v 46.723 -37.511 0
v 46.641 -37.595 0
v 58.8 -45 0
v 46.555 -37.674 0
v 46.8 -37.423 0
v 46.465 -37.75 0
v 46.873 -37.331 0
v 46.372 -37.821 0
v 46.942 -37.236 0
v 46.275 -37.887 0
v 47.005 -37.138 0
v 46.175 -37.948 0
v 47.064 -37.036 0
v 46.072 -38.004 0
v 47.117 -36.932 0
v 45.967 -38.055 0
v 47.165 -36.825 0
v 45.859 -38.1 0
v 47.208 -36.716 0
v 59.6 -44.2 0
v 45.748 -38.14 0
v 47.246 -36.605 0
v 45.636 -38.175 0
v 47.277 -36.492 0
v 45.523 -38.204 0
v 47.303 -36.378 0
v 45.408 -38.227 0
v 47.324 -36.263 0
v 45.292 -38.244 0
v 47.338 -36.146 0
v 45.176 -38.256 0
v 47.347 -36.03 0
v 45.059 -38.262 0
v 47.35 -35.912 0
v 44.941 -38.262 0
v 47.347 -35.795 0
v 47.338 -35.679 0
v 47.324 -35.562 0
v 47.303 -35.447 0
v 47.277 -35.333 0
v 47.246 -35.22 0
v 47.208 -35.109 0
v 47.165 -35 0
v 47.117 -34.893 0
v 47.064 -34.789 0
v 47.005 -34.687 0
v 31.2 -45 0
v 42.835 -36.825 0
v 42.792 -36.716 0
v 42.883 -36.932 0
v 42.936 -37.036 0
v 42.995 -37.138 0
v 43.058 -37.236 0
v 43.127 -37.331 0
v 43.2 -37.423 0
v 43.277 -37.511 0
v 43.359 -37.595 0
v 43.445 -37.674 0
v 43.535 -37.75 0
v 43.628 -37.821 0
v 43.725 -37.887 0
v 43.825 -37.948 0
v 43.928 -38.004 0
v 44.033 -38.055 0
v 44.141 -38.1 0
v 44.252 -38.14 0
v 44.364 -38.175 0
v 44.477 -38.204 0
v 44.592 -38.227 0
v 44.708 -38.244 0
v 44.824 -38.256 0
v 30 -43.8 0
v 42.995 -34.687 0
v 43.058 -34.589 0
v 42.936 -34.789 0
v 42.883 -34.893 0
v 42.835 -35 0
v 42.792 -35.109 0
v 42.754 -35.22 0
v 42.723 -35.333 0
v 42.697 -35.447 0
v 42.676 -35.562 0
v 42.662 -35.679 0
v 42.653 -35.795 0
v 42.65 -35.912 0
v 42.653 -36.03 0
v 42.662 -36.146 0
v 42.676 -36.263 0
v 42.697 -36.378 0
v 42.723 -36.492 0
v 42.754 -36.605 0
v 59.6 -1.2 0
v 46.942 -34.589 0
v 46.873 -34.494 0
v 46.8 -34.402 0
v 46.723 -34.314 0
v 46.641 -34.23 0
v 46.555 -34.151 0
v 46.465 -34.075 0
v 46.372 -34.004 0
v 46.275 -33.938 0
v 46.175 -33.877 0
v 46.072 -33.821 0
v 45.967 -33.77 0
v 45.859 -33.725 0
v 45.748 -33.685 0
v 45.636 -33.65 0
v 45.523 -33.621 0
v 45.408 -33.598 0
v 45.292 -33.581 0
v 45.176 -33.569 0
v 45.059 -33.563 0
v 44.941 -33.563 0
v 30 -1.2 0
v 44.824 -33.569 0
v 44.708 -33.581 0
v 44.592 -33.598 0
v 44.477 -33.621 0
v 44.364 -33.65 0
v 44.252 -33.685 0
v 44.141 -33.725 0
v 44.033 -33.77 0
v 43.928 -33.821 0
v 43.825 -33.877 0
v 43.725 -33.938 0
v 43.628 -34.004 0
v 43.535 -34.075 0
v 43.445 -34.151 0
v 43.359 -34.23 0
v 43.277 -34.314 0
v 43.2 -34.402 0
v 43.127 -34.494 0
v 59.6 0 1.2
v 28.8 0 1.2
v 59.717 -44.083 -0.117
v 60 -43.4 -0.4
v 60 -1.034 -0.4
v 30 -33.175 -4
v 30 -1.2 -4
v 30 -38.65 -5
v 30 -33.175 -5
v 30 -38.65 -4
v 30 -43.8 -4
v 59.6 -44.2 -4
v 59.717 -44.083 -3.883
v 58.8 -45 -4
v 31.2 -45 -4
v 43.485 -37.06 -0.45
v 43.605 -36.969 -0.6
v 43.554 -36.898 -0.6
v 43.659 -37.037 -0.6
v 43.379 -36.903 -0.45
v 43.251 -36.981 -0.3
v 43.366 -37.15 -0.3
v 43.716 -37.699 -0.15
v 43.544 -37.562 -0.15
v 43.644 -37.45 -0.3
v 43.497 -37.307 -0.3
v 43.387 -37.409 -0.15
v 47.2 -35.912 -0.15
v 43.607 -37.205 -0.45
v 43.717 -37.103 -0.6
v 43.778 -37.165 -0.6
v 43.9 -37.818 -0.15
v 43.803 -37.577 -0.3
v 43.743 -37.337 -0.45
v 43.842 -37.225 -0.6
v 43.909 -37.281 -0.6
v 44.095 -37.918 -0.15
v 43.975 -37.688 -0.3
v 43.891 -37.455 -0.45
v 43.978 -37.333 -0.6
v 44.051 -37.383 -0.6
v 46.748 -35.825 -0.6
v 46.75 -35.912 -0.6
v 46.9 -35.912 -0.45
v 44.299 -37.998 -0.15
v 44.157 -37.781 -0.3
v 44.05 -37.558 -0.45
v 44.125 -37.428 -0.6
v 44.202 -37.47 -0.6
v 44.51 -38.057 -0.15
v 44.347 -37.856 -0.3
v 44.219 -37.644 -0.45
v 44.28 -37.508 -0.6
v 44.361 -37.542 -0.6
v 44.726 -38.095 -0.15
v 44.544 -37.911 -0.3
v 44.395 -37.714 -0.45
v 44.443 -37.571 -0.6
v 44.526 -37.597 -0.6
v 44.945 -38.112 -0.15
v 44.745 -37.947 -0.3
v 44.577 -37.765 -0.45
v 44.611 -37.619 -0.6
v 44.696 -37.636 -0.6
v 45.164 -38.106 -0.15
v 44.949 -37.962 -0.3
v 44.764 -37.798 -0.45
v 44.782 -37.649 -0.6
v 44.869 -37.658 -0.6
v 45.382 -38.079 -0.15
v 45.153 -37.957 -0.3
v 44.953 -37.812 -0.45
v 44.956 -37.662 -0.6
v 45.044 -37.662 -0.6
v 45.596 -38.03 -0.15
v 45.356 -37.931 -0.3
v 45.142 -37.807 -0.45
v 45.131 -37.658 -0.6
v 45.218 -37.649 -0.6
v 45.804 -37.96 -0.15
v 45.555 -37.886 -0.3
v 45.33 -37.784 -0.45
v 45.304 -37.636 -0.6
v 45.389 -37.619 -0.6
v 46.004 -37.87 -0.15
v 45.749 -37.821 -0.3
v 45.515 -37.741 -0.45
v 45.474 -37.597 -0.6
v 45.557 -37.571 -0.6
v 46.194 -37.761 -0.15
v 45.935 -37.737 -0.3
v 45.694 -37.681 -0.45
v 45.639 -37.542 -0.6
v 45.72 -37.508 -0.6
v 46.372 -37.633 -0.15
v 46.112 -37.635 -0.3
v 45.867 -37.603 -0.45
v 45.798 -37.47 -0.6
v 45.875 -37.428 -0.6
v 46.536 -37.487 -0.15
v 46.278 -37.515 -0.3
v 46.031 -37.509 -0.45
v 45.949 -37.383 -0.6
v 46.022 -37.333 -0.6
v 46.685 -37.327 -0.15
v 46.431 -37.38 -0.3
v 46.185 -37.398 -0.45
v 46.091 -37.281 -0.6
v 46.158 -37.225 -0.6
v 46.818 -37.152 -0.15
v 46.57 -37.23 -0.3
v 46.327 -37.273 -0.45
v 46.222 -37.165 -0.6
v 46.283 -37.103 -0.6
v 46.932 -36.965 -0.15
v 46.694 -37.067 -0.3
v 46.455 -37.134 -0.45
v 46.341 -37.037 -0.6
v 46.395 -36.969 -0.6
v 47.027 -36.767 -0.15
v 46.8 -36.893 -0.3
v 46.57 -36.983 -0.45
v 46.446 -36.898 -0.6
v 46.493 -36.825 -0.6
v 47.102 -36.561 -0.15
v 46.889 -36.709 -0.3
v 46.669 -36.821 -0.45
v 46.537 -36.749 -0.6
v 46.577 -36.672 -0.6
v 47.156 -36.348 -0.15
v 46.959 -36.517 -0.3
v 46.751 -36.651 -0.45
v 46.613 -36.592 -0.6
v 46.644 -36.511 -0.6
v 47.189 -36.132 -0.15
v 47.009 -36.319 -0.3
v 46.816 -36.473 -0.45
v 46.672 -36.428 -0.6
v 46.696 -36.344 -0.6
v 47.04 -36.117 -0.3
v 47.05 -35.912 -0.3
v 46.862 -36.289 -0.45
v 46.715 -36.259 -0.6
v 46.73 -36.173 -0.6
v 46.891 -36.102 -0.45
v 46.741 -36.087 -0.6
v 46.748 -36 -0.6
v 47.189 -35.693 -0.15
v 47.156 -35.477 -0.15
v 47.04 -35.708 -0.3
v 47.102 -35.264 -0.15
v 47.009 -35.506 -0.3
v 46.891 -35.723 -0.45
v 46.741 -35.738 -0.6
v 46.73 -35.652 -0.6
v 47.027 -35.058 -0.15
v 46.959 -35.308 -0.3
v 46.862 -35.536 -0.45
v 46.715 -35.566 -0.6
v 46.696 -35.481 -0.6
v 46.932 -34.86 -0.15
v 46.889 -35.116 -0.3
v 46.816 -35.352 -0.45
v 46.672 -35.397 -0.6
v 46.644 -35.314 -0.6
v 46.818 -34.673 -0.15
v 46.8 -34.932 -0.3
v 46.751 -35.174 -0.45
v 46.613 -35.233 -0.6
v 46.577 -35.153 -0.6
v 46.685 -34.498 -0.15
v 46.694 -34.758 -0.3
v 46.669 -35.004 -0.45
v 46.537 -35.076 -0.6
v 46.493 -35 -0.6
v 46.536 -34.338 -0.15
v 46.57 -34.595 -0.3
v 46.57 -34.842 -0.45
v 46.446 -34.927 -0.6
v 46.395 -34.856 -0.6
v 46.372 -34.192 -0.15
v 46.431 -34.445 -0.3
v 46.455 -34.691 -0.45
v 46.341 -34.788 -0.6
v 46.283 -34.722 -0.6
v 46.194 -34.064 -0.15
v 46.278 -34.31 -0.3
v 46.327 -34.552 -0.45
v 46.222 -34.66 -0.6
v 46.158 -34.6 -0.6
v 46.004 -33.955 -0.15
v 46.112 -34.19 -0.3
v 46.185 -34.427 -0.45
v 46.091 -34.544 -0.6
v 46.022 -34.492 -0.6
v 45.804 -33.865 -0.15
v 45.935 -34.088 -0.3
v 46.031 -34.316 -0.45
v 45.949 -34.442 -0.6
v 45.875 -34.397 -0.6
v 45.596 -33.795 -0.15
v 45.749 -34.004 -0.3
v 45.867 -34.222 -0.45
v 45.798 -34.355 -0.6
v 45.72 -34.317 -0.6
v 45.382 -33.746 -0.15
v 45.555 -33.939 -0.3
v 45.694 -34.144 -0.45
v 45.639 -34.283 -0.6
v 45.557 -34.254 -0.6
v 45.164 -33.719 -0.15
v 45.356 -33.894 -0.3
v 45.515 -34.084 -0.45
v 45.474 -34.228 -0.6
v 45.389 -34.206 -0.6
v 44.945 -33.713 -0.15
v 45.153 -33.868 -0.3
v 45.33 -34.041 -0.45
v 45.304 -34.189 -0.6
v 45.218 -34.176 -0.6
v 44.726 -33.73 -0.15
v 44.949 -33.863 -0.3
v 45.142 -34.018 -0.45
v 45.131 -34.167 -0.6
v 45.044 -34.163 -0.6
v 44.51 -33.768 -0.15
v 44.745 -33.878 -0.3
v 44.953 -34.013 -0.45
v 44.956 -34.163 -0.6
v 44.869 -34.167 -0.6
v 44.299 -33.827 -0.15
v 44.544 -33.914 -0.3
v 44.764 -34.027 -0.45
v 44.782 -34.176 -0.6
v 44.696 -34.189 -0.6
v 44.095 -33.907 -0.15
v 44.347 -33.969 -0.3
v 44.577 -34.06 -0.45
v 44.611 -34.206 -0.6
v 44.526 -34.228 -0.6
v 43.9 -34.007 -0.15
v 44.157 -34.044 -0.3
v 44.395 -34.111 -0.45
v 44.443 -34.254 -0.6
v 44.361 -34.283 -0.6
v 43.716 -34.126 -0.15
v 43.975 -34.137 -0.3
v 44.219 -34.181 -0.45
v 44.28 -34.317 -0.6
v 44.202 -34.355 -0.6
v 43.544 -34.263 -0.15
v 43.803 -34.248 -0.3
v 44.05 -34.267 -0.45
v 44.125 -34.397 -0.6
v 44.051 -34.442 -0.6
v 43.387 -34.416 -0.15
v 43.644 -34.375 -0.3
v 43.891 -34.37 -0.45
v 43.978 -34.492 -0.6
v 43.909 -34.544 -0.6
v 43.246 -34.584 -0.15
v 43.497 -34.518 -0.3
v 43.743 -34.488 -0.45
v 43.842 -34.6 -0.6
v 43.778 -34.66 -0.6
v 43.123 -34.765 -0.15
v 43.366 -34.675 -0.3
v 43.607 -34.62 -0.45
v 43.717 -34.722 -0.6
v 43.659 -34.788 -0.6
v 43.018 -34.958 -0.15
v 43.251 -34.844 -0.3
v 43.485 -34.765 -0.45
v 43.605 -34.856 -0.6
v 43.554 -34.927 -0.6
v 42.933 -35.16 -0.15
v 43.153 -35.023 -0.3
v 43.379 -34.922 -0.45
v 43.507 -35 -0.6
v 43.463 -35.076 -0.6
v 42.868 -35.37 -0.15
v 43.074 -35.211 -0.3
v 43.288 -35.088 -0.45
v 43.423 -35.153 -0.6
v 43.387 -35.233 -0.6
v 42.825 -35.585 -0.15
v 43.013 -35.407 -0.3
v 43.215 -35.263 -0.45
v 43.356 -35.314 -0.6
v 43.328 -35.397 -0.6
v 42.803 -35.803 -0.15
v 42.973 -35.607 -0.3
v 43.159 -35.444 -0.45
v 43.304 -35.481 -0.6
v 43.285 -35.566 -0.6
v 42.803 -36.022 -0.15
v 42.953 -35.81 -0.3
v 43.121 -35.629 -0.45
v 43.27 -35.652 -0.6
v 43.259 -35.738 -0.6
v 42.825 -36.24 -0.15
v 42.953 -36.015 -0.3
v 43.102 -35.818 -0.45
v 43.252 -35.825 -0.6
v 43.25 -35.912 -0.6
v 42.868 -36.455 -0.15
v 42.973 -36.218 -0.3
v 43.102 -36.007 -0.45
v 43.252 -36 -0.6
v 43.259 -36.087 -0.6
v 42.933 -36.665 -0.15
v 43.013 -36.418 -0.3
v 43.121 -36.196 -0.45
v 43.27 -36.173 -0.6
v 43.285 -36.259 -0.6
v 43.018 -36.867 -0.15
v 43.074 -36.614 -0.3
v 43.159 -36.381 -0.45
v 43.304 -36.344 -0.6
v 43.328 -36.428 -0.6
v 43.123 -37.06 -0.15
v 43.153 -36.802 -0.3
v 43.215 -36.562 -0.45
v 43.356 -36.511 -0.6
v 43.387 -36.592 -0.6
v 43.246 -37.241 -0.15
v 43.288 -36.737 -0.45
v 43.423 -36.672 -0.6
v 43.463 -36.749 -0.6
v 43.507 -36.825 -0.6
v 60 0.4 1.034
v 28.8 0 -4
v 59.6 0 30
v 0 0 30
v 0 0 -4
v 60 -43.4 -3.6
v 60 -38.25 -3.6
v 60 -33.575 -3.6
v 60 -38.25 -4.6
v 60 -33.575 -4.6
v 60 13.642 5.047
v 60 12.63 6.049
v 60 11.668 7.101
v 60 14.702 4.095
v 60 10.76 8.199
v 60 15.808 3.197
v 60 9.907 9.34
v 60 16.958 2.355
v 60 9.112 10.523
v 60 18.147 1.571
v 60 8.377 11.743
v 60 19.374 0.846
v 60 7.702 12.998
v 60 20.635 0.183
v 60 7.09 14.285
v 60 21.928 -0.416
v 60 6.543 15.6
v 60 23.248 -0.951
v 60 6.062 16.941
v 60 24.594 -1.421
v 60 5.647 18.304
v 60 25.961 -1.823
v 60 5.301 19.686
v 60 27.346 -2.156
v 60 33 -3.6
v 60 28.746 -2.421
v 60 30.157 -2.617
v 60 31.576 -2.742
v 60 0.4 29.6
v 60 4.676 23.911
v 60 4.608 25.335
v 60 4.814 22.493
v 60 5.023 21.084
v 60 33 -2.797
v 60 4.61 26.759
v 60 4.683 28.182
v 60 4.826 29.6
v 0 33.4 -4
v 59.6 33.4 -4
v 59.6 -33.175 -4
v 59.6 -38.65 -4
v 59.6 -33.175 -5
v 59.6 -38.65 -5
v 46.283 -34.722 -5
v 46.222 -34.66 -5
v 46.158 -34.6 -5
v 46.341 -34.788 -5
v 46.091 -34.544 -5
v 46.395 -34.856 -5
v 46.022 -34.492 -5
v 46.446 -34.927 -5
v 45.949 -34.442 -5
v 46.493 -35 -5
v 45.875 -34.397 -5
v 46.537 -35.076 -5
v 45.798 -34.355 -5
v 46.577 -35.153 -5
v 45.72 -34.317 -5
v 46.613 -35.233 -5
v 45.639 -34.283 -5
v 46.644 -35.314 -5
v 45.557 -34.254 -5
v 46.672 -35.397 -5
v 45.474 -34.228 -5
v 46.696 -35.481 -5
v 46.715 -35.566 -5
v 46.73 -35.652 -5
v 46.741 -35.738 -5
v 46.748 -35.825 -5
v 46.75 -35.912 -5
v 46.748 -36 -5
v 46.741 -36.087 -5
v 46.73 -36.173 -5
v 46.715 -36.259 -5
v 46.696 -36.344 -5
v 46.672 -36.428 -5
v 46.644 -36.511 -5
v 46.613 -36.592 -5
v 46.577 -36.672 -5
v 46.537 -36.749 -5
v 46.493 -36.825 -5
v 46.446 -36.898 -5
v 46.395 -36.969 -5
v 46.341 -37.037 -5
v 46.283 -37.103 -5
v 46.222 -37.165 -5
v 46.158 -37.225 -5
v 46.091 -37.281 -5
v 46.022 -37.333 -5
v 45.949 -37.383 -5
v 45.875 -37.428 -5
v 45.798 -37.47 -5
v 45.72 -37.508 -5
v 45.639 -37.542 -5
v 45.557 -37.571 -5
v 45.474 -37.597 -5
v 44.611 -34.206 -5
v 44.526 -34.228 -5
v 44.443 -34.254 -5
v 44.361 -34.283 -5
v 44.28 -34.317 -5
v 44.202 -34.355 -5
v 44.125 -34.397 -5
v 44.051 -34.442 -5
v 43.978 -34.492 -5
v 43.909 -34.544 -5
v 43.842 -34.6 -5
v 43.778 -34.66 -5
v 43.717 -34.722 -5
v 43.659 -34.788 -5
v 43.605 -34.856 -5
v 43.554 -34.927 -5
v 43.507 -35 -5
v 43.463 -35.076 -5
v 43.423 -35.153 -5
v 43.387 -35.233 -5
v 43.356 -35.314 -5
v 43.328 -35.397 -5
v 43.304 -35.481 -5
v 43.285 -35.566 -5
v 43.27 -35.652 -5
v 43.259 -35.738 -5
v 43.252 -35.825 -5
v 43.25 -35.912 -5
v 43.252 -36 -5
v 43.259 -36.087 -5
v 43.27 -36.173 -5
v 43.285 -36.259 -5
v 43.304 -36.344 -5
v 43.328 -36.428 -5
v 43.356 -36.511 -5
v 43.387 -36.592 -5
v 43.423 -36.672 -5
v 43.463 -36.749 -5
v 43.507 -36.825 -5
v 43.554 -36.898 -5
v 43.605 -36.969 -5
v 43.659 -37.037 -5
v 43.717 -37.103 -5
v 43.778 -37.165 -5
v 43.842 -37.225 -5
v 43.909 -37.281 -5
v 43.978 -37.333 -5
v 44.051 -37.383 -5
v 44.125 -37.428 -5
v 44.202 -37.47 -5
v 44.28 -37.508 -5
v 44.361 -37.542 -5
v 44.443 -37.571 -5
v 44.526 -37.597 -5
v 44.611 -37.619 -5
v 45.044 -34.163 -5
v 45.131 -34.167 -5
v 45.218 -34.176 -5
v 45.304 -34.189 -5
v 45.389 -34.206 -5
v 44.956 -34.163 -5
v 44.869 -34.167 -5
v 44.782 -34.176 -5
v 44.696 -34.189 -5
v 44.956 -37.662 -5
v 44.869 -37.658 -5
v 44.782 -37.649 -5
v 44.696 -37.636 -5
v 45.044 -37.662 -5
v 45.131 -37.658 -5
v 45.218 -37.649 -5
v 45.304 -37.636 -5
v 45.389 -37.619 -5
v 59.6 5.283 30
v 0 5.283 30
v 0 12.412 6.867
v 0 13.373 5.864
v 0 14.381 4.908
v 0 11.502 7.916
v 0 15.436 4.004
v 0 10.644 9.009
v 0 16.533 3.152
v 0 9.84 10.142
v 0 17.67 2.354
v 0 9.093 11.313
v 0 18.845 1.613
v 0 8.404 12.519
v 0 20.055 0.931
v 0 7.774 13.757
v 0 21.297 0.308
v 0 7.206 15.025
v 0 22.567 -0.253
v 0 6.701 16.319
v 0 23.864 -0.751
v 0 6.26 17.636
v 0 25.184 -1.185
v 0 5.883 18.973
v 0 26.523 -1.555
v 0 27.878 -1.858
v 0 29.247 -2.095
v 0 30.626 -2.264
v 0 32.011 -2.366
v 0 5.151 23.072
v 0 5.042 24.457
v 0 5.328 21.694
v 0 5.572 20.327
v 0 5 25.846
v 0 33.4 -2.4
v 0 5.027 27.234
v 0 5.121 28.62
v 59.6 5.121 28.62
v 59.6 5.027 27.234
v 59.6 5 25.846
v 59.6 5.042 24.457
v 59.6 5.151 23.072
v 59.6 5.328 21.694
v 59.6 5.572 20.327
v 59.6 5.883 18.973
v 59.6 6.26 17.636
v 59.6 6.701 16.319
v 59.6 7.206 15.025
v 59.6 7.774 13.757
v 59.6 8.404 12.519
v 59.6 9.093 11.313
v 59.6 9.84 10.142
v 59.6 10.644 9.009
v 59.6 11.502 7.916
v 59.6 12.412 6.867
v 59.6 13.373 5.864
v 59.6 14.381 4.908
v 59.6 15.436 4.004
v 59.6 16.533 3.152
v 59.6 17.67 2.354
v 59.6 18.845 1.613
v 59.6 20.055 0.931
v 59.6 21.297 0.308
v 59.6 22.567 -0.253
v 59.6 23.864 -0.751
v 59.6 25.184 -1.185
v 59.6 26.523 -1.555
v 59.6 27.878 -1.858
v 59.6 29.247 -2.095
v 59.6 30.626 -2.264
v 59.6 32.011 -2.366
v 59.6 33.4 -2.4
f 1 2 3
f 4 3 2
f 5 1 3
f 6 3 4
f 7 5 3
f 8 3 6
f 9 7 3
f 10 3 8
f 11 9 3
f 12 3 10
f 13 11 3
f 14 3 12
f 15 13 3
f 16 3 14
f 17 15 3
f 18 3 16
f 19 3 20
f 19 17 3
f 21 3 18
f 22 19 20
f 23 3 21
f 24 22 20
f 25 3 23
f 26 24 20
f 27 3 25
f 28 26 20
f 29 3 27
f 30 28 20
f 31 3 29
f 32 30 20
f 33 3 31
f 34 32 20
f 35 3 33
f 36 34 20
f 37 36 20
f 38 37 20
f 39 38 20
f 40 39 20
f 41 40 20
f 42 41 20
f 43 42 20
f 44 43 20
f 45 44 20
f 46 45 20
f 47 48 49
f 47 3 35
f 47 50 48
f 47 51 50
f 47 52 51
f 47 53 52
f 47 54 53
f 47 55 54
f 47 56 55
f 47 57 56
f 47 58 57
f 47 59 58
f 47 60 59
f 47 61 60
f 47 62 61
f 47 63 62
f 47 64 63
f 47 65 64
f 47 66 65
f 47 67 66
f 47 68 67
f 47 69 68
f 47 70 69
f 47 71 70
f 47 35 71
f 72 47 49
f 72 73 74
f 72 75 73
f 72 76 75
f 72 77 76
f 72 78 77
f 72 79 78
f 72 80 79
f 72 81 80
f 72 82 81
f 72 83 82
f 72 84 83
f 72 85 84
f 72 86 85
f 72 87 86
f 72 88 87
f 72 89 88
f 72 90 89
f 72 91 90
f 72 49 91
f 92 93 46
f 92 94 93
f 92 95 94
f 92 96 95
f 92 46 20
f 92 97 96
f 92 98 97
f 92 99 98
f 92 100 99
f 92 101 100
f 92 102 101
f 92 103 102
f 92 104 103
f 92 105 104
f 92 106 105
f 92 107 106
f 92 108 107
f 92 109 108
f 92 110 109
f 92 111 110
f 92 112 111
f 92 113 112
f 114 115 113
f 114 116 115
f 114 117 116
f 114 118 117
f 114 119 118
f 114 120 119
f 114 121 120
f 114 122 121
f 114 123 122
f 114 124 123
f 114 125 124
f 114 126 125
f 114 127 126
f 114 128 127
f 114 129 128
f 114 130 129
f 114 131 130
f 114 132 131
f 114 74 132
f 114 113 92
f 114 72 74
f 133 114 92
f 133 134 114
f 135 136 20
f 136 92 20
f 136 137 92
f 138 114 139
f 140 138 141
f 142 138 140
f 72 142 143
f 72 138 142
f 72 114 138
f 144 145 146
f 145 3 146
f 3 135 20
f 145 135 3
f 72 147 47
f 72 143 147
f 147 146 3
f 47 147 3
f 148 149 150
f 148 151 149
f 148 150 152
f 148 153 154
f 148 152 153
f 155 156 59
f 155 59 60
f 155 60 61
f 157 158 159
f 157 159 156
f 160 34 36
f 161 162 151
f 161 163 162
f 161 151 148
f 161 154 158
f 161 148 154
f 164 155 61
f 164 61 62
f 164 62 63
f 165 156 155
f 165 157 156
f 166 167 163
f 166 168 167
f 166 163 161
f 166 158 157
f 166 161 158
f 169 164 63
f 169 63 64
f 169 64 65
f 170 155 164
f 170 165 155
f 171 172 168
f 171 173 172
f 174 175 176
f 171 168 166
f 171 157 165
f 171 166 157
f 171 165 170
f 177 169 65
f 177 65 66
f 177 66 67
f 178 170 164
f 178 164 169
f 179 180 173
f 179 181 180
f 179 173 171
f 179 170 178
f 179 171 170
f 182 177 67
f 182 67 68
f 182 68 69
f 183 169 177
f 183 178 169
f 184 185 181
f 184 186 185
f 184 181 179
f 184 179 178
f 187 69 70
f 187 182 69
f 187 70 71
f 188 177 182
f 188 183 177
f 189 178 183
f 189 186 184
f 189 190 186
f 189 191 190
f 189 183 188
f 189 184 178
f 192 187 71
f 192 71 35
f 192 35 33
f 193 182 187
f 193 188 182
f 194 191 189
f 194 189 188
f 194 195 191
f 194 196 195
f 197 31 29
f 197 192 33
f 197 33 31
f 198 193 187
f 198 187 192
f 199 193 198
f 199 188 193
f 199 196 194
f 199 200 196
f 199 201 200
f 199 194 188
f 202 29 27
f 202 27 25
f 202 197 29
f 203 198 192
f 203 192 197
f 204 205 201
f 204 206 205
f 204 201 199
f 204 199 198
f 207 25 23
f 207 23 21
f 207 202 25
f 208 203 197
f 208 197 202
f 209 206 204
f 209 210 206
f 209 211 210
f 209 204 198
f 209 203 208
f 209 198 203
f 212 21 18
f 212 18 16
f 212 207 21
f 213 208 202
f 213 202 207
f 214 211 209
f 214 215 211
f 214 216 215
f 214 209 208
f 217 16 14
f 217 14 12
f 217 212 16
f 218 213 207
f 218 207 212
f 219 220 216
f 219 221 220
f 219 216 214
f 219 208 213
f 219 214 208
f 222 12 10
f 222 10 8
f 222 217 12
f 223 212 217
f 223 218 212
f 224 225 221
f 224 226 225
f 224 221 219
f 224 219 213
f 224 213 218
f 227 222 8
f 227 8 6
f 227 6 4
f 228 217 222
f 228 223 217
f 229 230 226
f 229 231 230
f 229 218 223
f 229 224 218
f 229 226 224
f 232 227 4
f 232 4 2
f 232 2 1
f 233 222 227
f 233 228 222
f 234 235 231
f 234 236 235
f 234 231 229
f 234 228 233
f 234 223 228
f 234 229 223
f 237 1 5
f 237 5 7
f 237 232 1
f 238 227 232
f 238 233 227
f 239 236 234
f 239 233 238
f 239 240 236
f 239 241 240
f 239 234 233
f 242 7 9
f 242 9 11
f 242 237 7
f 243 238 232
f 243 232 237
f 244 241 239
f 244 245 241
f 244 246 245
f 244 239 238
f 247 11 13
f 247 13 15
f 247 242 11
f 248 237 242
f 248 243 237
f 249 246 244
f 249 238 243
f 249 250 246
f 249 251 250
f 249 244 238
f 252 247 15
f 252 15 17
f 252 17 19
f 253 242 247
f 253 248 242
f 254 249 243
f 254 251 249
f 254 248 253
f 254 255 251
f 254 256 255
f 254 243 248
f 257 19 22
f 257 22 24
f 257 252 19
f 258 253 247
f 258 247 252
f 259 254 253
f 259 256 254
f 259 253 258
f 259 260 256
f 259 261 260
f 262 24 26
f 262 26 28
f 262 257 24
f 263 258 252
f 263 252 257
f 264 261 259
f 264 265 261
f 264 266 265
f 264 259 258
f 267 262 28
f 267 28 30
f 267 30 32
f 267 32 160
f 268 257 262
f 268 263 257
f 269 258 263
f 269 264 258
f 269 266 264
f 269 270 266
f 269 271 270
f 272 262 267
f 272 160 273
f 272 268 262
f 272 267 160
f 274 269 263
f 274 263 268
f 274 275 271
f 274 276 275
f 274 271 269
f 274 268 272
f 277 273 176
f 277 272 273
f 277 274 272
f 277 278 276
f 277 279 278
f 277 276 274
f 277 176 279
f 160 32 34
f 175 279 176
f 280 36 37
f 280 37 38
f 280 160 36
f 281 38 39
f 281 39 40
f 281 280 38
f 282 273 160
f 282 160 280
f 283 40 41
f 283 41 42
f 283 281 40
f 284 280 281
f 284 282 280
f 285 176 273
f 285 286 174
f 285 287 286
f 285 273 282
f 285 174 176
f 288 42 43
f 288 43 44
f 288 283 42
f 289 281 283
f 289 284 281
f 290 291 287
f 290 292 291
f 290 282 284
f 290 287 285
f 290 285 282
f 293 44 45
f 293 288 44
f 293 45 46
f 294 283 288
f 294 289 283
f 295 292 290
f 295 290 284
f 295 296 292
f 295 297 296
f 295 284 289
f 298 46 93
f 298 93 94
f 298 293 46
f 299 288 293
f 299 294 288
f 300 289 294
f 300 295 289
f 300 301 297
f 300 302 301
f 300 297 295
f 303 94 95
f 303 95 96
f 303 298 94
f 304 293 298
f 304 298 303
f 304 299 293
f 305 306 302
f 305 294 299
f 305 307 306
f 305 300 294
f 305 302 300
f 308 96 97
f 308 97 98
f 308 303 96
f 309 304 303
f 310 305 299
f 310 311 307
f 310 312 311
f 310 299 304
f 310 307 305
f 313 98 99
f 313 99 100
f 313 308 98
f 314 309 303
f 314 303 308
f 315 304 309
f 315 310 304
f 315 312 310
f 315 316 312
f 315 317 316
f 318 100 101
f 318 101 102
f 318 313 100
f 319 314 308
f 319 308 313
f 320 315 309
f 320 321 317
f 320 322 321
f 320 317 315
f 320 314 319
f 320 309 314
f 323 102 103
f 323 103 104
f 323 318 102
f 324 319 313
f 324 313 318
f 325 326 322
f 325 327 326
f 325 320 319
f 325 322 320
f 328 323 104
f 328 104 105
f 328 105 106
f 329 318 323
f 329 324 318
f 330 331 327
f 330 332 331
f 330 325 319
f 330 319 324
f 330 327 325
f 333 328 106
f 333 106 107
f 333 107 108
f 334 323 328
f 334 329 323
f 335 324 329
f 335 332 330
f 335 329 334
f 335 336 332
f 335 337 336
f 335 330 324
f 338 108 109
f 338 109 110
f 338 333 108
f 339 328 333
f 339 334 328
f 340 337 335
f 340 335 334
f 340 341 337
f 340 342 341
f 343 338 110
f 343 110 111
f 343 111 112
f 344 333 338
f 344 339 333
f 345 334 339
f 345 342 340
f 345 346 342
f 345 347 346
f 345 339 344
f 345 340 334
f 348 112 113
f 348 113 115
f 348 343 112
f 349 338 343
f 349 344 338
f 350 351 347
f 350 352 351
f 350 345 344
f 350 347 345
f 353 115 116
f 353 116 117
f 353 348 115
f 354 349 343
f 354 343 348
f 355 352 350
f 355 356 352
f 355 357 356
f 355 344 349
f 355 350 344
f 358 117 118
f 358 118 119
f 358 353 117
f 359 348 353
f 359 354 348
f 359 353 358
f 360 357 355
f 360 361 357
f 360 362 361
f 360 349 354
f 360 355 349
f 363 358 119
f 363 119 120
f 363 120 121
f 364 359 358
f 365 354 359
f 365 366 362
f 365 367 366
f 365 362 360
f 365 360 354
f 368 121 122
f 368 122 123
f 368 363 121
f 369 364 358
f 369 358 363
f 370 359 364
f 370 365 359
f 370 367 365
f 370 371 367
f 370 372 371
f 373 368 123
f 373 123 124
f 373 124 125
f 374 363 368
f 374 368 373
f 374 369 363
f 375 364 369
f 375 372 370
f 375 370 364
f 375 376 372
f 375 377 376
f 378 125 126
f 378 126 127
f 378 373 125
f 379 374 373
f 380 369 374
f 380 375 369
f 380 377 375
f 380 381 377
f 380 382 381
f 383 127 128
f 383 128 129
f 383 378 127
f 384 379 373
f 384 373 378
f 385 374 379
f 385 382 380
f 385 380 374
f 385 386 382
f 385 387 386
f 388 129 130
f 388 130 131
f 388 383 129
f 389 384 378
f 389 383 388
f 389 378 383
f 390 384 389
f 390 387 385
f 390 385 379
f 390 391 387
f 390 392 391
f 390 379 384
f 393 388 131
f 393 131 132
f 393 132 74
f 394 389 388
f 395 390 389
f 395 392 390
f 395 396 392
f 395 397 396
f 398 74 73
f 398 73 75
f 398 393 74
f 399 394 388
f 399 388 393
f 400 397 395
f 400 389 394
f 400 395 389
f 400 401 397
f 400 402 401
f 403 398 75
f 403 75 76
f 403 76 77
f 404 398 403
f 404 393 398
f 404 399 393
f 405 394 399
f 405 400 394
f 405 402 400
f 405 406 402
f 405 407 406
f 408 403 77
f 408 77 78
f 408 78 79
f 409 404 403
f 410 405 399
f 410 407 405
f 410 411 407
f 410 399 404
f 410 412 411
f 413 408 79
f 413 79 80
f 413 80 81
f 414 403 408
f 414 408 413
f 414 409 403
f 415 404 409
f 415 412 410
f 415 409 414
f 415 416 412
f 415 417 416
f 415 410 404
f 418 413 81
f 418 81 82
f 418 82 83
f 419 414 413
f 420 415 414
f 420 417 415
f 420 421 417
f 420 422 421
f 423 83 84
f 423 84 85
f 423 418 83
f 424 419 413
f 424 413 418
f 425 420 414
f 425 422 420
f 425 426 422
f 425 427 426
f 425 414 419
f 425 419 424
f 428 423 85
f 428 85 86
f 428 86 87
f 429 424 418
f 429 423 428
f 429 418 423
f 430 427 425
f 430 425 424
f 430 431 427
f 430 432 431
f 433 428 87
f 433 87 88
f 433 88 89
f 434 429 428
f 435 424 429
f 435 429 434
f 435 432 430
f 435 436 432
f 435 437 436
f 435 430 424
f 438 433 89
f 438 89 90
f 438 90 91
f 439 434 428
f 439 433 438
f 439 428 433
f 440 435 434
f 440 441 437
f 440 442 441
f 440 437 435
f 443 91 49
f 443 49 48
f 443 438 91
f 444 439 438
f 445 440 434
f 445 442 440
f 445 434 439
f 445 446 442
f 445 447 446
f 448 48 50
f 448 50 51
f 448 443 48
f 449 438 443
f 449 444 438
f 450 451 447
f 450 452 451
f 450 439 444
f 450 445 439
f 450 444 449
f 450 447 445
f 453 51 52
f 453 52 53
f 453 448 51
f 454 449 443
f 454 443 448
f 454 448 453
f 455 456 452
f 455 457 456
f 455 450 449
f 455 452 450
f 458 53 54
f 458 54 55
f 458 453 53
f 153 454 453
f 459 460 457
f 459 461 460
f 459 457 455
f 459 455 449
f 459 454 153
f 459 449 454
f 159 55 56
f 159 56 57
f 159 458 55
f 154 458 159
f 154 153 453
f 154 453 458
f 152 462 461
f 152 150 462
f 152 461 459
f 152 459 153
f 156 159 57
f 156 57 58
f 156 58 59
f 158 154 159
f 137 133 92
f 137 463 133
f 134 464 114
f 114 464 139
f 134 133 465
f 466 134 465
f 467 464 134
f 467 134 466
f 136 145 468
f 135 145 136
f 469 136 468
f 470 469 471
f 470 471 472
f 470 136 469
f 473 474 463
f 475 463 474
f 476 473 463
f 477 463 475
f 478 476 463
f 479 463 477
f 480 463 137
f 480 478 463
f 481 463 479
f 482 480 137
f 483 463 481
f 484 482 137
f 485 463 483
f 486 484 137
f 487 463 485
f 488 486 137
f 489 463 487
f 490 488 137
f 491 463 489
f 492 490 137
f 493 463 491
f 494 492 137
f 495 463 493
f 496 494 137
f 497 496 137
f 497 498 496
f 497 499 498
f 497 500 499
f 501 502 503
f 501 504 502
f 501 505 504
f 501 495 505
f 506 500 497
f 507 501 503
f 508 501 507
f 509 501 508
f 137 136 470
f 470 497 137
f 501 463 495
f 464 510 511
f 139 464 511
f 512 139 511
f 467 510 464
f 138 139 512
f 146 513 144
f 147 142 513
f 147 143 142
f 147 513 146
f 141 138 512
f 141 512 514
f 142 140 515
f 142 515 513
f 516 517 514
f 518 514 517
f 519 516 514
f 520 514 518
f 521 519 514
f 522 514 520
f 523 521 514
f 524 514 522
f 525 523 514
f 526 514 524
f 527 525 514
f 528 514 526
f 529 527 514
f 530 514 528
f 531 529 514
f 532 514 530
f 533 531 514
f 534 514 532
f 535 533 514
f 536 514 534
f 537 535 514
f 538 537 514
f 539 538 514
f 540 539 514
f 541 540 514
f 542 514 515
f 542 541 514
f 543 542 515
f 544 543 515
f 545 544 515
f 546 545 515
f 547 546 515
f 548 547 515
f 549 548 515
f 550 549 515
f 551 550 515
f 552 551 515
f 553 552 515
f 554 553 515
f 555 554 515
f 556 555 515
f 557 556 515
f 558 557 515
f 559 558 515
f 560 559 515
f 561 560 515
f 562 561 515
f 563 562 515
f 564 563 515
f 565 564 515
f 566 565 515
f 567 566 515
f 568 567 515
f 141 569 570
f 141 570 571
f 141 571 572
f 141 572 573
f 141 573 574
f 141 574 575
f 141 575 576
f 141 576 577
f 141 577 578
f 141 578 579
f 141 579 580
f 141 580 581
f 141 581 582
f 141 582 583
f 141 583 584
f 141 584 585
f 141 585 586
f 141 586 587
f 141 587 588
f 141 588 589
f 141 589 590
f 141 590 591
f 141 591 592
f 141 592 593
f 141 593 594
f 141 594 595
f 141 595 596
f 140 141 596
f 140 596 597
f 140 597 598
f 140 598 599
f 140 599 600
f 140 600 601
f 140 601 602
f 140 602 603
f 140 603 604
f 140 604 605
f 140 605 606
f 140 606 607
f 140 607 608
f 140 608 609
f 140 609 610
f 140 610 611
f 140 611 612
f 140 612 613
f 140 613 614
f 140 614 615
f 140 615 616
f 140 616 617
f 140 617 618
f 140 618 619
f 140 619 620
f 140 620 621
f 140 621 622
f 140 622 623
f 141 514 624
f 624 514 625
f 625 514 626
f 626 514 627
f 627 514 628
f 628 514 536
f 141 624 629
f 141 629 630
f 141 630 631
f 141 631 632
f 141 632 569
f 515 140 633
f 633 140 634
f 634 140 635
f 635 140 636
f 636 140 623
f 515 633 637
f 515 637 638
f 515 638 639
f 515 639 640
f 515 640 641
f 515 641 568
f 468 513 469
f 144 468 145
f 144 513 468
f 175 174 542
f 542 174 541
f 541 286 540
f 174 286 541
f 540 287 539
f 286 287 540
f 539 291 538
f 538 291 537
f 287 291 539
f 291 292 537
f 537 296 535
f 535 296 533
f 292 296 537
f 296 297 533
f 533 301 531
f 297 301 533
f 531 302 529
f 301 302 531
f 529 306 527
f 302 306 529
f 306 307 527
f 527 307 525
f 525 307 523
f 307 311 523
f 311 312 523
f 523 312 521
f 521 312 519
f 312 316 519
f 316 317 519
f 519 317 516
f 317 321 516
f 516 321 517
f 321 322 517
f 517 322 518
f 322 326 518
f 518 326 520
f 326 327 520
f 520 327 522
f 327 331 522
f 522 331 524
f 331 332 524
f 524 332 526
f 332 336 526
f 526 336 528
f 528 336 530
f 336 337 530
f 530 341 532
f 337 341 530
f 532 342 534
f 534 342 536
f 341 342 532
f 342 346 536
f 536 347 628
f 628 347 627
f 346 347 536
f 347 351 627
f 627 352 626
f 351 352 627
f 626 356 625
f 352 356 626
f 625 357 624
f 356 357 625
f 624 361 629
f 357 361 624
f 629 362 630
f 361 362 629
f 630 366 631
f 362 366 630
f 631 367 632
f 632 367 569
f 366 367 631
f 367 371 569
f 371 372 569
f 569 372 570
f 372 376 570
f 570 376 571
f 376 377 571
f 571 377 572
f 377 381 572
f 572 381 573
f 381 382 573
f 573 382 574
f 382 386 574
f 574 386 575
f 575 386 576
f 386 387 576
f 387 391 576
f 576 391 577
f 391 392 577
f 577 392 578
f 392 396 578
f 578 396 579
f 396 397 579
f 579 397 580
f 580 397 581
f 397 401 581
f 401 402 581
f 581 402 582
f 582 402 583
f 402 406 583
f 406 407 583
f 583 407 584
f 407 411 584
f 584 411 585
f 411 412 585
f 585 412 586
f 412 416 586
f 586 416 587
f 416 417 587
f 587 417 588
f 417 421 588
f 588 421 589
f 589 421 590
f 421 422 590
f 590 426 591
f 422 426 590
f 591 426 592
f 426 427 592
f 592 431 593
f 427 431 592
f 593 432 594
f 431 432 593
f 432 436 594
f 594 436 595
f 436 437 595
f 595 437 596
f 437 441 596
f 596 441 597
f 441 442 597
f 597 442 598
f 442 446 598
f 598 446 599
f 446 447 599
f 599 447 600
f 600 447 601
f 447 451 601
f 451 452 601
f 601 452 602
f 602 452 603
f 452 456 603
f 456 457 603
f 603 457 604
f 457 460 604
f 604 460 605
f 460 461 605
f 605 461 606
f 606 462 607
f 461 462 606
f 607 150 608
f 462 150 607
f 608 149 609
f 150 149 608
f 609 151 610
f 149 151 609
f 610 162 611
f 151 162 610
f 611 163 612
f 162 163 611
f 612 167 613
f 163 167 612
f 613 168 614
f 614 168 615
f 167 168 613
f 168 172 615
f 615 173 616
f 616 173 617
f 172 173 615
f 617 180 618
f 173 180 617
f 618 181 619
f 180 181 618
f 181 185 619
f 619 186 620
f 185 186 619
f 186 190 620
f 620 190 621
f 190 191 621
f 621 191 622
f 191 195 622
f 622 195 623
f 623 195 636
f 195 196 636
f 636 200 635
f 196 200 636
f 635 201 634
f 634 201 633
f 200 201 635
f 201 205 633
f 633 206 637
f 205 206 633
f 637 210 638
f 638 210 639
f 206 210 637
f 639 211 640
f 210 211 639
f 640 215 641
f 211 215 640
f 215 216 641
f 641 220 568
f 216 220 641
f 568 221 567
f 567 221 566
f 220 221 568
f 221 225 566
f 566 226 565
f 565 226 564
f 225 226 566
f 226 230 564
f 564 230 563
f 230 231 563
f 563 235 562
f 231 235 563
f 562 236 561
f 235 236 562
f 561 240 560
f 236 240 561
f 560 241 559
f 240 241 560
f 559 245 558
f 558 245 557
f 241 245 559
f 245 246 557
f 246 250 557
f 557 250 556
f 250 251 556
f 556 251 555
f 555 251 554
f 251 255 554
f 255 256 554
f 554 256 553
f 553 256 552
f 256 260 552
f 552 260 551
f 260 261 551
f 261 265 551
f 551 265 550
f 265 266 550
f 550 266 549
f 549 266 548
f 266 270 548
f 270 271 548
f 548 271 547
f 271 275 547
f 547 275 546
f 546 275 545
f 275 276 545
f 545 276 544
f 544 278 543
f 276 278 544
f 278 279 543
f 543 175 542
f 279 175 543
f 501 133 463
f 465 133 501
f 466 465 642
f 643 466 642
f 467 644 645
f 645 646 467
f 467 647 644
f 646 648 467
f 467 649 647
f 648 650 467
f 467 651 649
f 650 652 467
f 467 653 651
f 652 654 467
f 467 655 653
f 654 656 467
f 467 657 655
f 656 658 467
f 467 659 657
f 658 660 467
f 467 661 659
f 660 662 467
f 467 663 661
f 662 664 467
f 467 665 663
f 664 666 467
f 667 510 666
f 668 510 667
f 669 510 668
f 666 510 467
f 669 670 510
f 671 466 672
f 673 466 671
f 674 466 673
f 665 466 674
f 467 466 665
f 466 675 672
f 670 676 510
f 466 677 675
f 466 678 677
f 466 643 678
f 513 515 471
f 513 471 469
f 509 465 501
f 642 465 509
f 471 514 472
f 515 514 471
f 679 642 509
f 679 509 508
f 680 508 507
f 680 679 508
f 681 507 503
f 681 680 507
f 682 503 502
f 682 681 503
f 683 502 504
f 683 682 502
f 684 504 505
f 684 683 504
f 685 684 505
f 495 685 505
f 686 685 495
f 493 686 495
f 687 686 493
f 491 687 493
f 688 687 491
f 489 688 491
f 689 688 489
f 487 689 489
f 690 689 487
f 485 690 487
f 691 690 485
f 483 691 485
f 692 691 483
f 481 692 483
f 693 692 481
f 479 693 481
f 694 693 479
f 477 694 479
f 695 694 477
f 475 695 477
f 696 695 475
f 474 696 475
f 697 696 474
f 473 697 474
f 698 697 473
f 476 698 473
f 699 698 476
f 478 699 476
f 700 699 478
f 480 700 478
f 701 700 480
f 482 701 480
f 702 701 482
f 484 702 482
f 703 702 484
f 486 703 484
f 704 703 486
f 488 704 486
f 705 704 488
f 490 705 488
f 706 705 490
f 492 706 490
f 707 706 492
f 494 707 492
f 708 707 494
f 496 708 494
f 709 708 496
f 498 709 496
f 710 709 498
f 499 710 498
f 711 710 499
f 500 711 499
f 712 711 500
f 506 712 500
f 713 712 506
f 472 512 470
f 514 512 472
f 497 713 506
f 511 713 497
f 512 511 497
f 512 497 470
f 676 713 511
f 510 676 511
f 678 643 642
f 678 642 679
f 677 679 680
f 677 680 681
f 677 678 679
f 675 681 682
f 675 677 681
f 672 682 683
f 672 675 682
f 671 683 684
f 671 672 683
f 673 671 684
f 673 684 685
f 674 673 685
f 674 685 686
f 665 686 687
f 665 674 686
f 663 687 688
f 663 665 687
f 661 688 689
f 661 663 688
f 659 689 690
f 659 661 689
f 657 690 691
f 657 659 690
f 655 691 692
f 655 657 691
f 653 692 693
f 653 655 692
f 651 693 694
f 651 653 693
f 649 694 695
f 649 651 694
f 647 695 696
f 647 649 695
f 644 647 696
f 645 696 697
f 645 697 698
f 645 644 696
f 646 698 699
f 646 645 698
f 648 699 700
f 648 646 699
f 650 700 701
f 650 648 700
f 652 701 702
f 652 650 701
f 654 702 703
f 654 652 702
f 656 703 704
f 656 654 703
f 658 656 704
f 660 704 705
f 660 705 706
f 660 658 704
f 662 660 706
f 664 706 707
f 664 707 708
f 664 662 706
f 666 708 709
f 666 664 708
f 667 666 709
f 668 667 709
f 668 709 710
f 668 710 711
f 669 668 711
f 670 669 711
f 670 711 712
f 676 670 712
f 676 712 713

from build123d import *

# Parameters (mm, degrees)
PAD_DEPTH       = 60
SKETCH001_W     = 30
SKETCH001_H     = 45
POCKET_DEPTH    = 5
SKETCH002_R     = 1.75
POCKET001_DEPTH = 5.001
CHAMFER_SIZE    = 1.2
CHAMFER001_SIZE = 0.6
CHAMFER002_SIZE = 0.4


with BuildPart() as part:
    # Sketch → Pad (new body)
    with BuildSketch(Plane.YZ):
        with BuildLine():
            Line((-45, -4), (-45, 0))
            Line((-45, 0), (0, 0))
            Line((0, 0), (0, 30))
            Line((0, 30), (5, 30))
            Line((5, 30), (5.283101, 30))
            ThreePointArc((5.283101, 30), (11.950524, 7.386027), (33.4, -2.4))
            Line((33.4, -2.4), (33.4, -4))
            Line((33.4, -4), (0, -4))
            Line((0, -4), (-33.175, -4))
            Line((-33.175, -4), (-33.175, -5))
            Line((-33.175, -5), (-38.65, -5))
            Line((-38.65, -5), (-38.65, -4))
            Line((-38.65, -4), (-45, -4))
        make_face()
    extrude(amount=PAD_DEPTH)

    # Sketch001 → Pocket (cut)
    with BuildSketch(Plane.XY):
        with Locations((15, -22.5)):
            Rectangle(SKETCH001_W, SKETCH001_H)
    extrude(amount=-POCKET_DEPTH, mode=Mode.SUBTRACT)

    # Sketch002 → Pocket001 (cut, through all)
    with BuildSketch(Plane.XY):
        with Locations((45, -35.9125)):
            Circle(SKETCH002_R)
    extrude(amount=-POCKET001_DEPTH, mode=Mode.SUBTRACT)

    # Chamfer
    chamfer_edges = [part.edges().sort_by_distance(p)[0] for p in [
        (30, 0, -2),
        (45, 0, 0),
        (60, -45, -2),
        (30, -45, -2),
    ]]
    chamfer(chamfer_edges, length=CHAMFER_SIZE)

    # Chamfer001
    chamfer001_edges = [part.edges().sort_by_distance(p)[0] for p in [
        (43.25, -35.9125, 0),
    ]]
    chamfer(chamfer001_edges, length=CHAMFER001_SIZE)

    # Chamfer002
    chamfer002_edges = [part.edges().sort_by_distance(p)[0] for p in [
        (60, -22.5, 0),
        (60, -43.8, -2),
        (60, -0.6, 0.6),
        (60, -41.225, -4),
        (60, 0, 15.6),
        (60, -38.65, -4.5),
        (60, 2.641551, 30),
        (60, -35.9125, -5),
        (60, 11.950524, 7.386027),
        (60, -33.175, -4.5),
        (60, 33.4, -3.2),
        (60, 0.1125, -4),
    ]]
    chamfer(chamfer002_edges, length=CHAMFER002_SIZE)


solid = part.part
